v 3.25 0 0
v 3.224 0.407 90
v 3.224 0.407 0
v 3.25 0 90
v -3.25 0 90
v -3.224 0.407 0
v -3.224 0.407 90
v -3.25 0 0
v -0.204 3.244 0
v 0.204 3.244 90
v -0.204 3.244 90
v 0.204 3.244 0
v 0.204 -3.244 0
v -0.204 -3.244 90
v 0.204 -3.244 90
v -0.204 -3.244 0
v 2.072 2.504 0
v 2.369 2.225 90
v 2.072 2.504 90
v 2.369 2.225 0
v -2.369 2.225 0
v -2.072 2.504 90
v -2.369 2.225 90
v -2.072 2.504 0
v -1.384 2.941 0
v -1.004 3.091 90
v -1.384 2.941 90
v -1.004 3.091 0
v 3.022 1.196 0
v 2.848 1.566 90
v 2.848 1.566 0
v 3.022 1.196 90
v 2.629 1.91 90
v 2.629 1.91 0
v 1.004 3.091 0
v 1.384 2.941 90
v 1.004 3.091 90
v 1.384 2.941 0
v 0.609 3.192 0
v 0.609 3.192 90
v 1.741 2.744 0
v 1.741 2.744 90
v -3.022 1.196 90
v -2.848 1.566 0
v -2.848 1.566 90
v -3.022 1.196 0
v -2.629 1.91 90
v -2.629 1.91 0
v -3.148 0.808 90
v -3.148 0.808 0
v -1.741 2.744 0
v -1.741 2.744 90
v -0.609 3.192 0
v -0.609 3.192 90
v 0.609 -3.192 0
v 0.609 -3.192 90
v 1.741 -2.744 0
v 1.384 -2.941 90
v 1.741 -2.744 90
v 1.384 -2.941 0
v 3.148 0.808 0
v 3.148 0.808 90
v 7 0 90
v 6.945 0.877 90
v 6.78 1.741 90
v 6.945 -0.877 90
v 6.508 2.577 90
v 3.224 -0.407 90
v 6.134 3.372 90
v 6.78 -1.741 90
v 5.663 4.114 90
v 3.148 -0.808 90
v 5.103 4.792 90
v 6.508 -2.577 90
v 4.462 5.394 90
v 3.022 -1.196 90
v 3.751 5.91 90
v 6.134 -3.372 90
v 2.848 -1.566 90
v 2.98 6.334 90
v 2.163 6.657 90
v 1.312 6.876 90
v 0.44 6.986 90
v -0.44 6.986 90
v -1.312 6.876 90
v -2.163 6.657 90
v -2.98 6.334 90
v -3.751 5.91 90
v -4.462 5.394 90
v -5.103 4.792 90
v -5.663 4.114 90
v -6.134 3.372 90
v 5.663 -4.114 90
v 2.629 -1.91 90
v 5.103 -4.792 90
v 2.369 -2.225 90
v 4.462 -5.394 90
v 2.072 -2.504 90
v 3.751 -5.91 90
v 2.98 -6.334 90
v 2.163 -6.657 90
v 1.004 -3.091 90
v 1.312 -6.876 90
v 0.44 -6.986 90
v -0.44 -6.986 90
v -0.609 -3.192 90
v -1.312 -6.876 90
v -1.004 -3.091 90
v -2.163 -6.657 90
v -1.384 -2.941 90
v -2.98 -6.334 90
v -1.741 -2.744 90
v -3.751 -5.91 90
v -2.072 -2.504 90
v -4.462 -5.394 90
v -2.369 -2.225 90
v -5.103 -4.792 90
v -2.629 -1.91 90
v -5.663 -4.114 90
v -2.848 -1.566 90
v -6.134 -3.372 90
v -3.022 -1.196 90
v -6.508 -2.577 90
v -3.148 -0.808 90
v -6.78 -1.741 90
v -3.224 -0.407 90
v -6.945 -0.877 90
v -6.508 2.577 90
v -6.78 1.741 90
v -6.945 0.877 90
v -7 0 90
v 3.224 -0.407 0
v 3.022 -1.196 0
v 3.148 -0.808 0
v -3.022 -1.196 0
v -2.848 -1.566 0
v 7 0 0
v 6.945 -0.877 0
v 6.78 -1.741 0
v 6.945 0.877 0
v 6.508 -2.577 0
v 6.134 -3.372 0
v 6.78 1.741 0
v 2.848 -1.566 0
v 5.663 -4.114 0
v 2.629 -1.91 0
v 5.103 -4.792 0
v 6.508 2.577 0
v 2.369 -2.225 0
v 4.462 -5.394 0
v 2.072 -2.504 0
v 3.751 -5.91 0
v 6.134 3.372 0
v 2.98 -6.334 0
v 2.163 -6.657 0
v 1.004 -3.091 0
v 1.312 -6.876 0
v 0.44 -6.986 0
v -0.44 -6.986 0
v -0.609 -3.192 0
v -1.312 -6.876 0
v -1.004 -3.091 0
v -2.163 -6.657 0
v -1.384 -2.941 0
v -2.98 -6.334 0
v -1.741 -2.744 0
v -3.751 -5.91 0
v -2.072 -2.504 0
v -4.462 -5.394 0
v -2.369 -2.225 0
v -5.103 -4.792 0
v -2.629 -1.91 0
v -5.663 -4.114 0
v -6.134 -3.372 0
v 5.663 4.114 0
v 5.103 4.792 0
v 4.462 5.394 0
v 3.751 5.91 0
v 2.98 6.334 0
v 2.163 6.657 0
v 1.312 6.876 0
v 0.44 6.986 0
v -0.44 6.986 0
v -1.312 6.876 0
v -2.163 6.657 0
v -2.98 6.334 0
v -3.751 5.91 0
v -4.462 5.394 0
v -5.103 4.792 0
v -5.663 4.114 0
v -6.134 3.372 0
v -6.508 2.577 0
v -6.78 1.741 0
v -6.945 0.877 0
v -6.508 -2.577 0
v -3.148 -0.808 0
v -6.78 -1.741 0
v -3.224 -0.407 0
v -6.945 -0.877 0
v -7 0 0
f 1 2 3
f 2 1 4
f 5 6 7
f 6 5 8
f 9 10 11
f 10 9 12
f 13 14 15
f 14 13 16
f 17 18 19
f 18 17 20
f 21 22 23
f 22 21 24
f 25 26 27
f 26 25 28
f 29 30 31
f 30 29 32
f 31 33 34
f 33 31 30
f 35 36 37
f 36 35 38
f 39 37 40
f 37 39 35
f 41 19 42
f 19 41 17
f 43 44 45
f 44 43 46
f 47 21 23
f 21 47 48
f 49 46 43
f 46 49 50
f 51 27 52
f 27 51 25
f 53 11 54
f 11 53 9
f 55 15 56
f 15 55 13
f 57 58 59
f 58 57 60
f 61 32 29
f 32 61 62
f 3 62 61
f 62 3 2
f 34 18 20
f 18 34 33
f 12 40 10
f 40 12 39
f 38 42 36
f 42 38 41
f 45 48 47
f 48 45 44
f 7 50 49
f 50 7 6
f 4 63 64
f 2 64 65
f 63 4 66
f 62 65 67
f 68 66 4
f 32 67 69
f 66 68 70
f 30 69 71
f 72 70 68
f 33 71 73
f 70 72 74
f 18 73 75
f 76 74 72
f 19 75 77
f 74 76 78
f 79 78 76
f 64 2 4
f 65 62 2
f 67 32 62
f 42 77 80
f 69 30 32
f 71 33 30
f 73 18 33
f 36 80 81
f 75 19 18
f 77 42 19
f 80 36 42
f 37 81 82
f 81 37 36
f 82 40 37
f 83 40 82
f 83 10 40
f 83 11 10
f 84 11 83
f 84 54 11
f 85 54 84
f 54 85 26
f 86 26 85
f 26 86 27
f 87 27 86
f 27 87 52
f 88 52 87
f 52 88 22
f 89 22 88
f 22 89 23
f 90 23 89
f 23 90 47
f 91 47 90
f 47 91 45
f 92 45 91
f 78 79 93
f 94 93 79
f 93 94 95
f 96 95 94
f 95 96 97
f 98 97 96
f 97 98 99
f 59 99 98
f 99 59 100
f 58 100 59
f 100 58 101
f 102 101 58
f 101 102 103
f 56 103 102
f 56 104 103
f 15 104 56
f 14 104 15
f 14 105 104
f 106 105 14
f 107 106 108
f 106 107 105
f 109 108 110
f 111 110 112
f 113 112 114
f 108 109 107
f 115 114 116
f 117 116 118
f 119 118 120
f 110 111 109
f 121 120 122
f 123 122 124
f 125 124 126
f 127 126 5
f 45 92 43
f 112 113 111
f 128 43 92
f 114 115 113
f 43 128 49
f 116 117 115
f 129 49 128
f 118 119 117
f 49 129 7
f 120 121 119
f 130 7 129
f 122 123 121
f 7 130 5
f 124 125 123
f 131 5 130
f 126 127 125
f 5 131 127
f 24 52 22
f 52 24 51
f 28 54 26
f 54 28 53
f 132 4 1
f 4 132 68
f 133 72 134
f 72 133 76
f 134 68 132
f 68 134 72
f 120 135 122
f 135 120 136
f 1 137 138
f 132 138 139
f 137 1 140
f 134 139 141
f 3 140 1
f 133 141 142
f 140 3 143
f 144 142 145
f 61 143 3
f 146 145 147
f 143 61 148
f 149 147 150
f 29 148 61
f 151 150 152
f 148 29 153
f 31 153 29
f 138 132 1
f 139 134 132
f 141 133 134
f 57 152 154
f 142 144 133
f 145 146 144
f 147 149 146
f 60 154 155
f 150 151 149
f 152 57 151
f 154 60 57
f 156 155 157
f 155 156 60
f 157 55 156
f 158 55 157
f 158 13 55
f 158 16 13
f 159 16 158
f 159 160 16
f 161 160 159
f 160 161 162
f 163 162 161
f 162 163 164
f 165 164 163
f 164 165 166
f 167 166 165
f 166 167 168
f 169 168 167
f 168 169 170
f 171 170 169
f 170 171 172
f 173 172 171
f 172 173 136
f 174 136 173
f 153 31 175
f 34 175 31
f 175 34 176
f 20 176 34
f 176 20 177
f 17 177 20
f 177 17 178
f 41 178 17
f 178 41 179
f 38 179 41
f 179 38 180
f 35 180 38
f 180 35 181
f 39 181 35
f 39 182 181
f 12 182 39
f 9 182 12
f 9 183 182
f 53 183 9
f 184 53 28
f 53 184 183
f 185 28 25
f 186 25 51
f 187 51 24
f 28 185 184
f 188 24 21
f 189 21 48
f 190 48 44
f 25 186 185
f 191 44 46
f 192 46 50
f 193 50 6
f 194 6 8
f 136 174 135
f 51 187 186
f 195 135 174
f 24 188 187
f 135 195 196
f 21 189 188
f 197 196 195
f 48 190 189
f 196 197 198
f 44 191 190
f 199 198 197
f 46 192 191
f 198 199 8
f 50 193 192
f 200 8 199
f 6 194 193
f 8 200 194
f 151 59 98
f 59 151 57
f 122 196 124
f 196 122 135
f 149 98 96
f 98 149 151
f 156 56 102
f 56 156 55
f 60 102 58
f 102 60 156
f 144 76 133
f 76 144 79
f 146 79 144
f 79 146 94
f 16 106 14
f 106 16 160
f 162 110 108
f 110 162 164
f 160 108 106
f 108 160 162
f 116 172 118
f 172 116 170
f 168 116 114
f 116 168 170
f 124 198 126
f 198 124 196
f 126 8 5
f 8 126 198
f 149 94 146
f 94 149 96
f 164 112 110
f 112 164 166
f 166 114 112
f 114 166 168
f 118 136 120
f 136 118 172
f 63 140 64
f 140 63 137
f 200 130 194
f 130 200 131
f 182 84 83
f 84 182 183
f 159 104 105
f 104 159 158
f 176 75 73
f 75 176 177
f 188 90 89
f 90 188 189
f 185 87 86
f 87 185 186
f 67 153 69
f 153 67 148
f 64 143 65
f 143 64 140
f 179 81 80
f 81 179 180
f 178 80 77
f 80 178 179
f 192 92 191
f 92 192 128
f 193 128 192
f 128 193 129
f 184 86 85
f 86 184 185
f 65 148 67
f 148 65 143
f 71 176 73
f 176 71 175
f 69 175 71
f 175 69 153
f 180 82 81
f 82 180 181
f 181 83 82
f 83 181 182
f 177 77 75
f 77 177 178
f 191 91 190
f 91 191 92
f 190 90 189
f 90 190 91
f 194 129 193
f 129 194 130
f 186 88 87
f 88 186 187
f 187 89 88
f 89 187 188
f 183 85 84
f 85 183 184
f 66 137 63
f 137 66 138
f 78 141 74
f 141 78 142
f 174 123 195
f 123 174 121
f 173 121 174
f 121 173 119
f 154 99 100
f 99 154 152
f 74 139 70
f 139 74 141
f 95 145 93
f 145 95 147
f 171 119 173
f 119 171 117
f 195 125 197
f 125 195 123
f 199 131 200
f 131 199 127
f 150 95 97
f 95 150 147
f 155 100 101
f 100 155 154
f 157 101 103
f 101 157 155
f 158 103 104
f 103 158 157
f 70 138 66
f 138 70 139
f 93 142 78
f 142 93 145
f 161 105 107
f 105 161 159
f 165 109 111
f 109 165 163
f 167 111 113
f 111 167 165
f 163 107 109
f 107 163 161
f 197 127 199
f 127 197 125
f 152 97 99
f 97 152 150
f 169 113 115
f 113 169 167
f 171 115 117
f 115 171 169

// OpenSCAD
$fn = 50;


difference() {
	union() {
		cylinder(h = 90, r = 7.0000000000);
	}
	union() {
		cylinder(h = 90, r = 3.2500000000);
		cylinder(h = 90, r = 1.8000000000);
		cylinder(h = 90, r = 1.8000000000);
		cylinder(h = 90, r = 1.8000000000);
	}
}
